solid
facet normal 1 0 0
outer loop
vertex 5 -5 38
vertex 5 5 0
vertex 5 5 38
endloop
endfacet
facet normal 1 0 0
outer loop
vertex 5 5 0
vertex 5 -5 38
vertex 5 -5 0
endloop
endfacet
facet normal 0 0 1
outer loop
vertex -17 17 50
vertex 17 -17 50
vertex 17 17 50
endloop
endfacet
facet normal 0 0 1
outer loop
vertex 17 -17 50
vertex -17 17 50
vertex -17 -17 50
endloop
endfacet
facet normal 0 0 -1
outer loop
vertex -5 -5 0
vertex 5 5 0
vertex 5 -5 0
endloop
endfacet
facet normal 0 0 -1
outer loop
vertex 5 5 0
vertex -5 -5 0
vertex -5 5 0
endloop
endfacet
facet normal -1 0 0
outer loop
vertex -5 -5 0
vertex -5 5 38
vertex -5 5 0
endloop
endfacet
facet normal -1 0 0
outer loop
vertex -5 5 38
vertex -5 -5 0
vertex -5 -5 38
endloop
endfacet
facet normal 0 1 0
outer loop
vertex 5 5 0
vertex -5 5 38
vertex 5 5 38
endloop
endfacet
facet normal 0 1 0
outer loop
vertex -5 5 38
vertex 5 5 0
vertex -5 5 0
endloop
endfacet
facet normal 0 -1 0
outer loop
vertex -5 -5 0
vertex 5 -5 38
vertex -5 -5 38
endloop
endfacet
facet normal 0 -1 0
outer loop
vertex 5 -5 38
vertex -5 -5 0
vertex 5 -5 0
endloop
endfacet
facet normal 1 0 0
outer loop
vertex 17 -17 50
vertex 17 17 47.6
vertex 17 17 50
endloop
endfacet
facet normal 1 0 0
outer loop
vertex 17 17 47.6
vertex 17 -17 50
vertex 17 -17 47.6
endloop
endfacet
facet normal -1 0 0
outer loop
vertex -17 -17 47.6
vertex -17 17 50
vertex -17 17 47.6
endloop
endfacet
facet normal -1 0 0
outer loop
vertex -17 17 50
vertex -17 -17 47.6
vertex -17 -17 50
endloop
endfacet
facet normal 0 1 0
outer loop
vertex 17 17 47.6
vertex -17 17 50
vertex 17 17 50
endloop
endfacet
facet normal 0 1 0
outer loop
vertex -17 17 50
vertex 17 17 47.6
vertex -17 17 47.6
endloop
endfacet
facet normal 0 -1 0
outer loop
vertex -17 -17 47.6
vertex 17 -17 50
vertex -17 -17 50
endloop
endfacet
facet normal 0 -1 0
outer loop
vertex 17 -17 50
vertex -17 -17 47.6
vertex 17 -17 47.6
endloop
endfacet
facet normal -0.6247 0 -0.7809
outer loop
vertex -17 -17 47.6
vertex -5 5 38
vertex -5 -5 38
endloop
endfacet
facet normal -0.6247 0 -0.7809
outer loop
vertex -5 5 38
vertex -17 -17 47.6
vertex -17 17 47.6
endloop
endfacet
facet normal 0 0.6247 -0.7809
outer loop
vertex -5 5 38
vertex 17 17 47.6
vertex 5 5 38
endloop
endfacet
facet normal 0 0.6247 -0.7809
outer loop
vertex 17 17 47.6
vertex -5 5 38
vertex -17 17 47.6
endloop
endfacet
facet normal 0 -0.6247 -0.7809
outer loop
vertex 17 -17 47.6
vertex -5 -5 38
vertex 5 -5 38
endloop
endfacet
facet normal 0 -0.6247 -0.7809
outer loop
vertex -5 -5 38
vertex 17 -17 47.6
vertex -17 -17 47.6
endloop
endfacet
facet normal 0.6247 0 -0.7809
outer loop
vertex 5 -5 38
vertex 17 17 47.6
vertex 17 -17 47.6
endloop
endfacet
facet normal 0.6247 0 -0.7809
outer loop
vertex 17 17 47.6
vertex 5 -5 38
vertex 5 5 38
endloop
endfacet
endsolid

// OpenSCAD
// Optional adapter for flakes that have no 10 x 10 mm arm.
// Print this, glue/epoxy the flat plate onto the back of the flake's lowest point.
arm_w=10; arm_t=10; tab_len=50; plate=34; plate_t=2.4;
union(){
  translate([-arm_t/2,-arm_w/2,0]) cube([arm_t,arm_w,tab_len]);
  translate([-plate/2,-plate/2,tab_len-plate_t]) cube([plate,plate,plate_t]);
  // gusset so the plate doesn't snap off the tab
  hull(){ translate([-arm_t/2,-arm_w/2,tab_len-12]) cube([arm_t,arm_w,.01]);
          translate([-plate/2,-plate/2,tab_len-plate_t]) cube([plate,plate,.01]); }
}
